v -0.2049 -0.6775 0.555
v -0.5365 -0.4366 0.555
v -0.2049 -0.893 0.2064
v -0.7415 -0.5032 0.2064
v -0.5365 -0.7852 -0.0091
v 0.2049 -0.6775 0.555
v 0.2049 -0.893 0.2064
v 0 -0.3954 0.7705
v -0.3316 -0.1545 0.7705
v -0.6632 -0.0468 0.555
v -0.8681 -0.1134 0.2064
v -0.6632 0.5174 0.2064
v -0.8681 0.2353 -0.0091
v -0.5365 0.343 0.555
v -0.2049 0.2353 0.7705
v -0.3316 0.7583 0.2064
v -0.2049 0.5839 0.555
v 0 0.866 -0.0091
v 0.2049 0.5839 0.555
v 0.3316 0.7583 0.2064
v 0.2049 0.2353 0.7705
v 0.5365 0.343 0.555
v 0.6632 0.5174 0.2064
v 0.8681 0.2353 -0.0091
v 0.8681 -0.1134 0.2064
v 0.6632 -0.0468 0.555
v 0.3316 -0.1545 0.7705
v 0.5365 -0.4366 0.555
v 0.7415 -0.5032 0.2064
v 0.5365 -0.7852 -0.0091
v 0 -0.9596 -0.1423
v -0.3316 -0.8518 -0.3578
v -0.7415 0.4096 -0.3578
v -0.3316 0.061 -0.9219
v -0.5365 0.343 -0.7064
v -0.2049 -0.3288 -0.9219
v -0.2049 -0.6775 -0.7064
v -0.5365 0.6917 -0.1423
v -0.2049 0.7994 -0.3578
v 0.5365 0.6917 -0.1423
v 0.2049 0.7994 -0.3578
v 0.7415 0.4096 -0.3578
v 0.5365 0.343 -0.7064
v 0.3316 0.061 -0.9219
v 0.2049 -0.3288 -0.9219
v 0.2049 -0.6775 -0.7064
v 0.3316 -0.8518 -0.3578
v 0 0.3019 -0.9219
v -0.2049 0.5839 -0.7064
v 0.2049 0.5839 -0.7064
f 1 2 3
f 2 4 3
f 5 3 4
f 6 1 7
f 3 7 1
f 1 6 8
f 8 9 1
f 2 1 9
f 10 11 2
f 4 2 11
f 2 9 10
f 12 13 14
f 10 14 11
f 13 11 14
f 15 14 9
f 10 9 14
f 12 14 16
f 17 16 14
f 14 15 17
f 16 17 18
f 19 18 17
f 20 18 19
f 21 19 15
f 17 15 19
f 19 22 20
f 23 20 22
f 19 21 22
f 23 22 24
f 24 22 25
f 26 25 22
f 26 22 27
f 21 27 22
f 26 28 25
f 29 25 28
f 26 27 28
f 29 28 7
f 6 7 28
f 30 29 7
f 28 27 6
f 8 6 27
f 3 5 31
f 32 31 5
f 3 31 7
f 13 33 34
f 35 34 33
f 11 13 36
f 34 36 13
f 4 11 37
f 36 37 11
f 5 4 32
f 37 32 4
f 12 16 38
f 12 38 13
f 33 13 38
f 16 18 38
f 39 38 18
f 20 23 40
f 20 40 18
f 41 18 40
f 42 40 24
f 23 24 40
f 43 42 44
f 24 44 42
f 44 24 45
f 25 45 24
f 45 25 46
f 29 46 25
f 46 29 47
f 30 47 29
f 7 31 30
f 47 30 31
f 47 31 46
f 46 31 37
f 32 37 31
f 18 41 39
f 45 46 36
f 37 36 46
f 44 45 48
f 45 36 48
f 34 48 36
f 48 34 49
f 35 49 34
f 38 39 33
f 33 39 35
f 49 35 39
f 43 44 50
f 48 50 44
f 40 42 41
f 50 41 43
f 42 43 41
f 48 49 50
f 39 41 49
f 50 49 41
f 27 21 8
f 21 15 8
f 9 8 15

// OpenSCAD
polyhedron( points = [[-0.204932371871916, -0.677493532734374, 0.555030949402645], [-0.536519915555524, -0.436581080455005, 0.555030949402645], [-0.663175087208717, -0.0467765443856143, 0.555030949402645], [-0.536519916113604, 0.343027991672401, 0.555030949402645], [-0.204932372774908, 0.583940443921995, 0.555030949402645], [0.204932371505065, 0.583940443921999, 0.555030949402645], [0.536519915210304, 0.343027991672401, 0.555030949402645], [0.663175086898501, -0.0467765443856143, 0.555030949402645], [0.536519915838393, -0.436581080455002, 0.555030949402645], [0.204932372521327, -0.677493532734374, 0.555030949402645], [-0.204932371853514, -0.892972180825466, 0.20637917328835], [-0.74145228773907, -0.50316764475886, 0.206379173280269], [-0.868107459059675, -0.113363108575217, 0.206379173235088], [-0.663175086765436, 0.51735387954792, 0.206379173266805], [-0.331587543191283, 0.758266331634498, 0.206379173235088], [0.331587544037774, 0.758266331559087, 0.206379173266805], [0.663175087547468, 0.51735387938379, 0.206379173235088], [0.868107459698271, -0.113363108785953, 0.206379173266805], [0.741452288281843, -0.503167644646409, 0.206379173235088], [0.20493237247602, -0.892972180811321, 0.206379173311237], [2.22952387723639e-10, -0.959558744407932, -0.142272602988092], [-0.536519915584089, -0.785232856847492, -0.00909947454560291], [-0.868107458971976, 0.235288667584251, -0.00909947467361603], [4.66291147918841e-10, 0.866005655515285, -0.00909947467361603], [0.86810745970889, 0.235288667314942, -0.00909947467361603], [0.536519916029172, -0.785232856648964, -0.00909947467361603], [-0.331587543495199, -0.851819420433995, -0.357751250653437], [-0.204932372327182, -0.6774935317398, -0.706403026534111], [-0.204932372717398, -0.328841755281291, -0.921881673860305], [-0.331587544528882, 0.0609627806694797, -0.921881673240278], [-0.536519916947709, 0.343027992123399, -0.706403024834488], [-0.741452288017753, 0.409614555902429, -0.357751250760014], [0.331587543690393, -0.851819419822663, -0.357751250825527], [0.204932372066061, -0.677493531345518, -0.706403026673383], [0.204932372072115, -0.328841756821833, -0.921881674537045], [0.331587543540166, 0.0609627791128544, -0.921881674687753], [0.536519915848414, 0.343027991157938, -0.706403026950645], [0.741452288216277, 0.409614555328819, -0.357751250806997], [-1.14399488230083e-09, 0.301875233329775, -0.921881673071213], [-0.204932373601665, 0.583940444724612, -0.70640302468085], [0.204932372241144, 0.583940443489116, -0.706403027040376], [-0.204932371650245, 0.799419091060077, -0.357751250660532], [0.204932372762947, 0.799419091913985, -0.357751250760014], [0.53651991633901, 0.6916797679563, -0.142272602685911], [-0.536519915808383, 0.691679767869995, -0.142272602685911], [3.35329131023137e-10, -0.395428320269112, 0.770509596981137], [0.331587543418096, -0.154515868349808, 0.770509597206759], [0.204932371734709, 0.235288667653002, 0.770509597206759], [-0.204932372491272, 0.235288667640509, 0.77050959720676], [-0.331587543287536, -0.154515868139244, 0.770509596928451]], faces = [[0, 1, 11, 21, 10], [0, 10, 19, 9], [0, 9, 45], [0, 45, 49, 1], [1, 2, 12, 11], [1, 49, 2], [2, 3, 13, 22, 12], [2, 49, 48, 3], [3, 4, 14, 13], [3, 48, 4], [4, 5, 15, 23, 14], [4, 48, 47, 5], [5, 6, 16, 15], [5, 47, 6], [6, 7, 17, 24, 16], [6, 47, 46, 7], [7, 8, 18, 17], [7, 46, 8], [8, 9, 19, 25, 18], [8, 46, 45, 9], [10, 21, 26, 20], [10, 20, 19], [11, 12, 22, 31, 30, 29, 28, 27, 26, 21], [13, 14, 44], [13, 44, 31, 22], [14, 23, 41, 44], [15, 16, 43], [15, 43, 42, 23], [16, 24, 37, 43], [17, 18, 25, 32, 33, 34, 35, 36, 37, 24], [19, 20, 32, 25], [20, 26, 27, 33, 32], [23, 42, 41], [27, 28, 34, 33], [28, 29, 38, 35, 34], [29, 30, 39, 38], [30, 31, 44, 41, 39], [35, 38, 40, 36], [36, 40, 42, 43, 37], [38, 39, 40], [39, 41, 42, 40], [45, 46, 47, 48, 49]]);
